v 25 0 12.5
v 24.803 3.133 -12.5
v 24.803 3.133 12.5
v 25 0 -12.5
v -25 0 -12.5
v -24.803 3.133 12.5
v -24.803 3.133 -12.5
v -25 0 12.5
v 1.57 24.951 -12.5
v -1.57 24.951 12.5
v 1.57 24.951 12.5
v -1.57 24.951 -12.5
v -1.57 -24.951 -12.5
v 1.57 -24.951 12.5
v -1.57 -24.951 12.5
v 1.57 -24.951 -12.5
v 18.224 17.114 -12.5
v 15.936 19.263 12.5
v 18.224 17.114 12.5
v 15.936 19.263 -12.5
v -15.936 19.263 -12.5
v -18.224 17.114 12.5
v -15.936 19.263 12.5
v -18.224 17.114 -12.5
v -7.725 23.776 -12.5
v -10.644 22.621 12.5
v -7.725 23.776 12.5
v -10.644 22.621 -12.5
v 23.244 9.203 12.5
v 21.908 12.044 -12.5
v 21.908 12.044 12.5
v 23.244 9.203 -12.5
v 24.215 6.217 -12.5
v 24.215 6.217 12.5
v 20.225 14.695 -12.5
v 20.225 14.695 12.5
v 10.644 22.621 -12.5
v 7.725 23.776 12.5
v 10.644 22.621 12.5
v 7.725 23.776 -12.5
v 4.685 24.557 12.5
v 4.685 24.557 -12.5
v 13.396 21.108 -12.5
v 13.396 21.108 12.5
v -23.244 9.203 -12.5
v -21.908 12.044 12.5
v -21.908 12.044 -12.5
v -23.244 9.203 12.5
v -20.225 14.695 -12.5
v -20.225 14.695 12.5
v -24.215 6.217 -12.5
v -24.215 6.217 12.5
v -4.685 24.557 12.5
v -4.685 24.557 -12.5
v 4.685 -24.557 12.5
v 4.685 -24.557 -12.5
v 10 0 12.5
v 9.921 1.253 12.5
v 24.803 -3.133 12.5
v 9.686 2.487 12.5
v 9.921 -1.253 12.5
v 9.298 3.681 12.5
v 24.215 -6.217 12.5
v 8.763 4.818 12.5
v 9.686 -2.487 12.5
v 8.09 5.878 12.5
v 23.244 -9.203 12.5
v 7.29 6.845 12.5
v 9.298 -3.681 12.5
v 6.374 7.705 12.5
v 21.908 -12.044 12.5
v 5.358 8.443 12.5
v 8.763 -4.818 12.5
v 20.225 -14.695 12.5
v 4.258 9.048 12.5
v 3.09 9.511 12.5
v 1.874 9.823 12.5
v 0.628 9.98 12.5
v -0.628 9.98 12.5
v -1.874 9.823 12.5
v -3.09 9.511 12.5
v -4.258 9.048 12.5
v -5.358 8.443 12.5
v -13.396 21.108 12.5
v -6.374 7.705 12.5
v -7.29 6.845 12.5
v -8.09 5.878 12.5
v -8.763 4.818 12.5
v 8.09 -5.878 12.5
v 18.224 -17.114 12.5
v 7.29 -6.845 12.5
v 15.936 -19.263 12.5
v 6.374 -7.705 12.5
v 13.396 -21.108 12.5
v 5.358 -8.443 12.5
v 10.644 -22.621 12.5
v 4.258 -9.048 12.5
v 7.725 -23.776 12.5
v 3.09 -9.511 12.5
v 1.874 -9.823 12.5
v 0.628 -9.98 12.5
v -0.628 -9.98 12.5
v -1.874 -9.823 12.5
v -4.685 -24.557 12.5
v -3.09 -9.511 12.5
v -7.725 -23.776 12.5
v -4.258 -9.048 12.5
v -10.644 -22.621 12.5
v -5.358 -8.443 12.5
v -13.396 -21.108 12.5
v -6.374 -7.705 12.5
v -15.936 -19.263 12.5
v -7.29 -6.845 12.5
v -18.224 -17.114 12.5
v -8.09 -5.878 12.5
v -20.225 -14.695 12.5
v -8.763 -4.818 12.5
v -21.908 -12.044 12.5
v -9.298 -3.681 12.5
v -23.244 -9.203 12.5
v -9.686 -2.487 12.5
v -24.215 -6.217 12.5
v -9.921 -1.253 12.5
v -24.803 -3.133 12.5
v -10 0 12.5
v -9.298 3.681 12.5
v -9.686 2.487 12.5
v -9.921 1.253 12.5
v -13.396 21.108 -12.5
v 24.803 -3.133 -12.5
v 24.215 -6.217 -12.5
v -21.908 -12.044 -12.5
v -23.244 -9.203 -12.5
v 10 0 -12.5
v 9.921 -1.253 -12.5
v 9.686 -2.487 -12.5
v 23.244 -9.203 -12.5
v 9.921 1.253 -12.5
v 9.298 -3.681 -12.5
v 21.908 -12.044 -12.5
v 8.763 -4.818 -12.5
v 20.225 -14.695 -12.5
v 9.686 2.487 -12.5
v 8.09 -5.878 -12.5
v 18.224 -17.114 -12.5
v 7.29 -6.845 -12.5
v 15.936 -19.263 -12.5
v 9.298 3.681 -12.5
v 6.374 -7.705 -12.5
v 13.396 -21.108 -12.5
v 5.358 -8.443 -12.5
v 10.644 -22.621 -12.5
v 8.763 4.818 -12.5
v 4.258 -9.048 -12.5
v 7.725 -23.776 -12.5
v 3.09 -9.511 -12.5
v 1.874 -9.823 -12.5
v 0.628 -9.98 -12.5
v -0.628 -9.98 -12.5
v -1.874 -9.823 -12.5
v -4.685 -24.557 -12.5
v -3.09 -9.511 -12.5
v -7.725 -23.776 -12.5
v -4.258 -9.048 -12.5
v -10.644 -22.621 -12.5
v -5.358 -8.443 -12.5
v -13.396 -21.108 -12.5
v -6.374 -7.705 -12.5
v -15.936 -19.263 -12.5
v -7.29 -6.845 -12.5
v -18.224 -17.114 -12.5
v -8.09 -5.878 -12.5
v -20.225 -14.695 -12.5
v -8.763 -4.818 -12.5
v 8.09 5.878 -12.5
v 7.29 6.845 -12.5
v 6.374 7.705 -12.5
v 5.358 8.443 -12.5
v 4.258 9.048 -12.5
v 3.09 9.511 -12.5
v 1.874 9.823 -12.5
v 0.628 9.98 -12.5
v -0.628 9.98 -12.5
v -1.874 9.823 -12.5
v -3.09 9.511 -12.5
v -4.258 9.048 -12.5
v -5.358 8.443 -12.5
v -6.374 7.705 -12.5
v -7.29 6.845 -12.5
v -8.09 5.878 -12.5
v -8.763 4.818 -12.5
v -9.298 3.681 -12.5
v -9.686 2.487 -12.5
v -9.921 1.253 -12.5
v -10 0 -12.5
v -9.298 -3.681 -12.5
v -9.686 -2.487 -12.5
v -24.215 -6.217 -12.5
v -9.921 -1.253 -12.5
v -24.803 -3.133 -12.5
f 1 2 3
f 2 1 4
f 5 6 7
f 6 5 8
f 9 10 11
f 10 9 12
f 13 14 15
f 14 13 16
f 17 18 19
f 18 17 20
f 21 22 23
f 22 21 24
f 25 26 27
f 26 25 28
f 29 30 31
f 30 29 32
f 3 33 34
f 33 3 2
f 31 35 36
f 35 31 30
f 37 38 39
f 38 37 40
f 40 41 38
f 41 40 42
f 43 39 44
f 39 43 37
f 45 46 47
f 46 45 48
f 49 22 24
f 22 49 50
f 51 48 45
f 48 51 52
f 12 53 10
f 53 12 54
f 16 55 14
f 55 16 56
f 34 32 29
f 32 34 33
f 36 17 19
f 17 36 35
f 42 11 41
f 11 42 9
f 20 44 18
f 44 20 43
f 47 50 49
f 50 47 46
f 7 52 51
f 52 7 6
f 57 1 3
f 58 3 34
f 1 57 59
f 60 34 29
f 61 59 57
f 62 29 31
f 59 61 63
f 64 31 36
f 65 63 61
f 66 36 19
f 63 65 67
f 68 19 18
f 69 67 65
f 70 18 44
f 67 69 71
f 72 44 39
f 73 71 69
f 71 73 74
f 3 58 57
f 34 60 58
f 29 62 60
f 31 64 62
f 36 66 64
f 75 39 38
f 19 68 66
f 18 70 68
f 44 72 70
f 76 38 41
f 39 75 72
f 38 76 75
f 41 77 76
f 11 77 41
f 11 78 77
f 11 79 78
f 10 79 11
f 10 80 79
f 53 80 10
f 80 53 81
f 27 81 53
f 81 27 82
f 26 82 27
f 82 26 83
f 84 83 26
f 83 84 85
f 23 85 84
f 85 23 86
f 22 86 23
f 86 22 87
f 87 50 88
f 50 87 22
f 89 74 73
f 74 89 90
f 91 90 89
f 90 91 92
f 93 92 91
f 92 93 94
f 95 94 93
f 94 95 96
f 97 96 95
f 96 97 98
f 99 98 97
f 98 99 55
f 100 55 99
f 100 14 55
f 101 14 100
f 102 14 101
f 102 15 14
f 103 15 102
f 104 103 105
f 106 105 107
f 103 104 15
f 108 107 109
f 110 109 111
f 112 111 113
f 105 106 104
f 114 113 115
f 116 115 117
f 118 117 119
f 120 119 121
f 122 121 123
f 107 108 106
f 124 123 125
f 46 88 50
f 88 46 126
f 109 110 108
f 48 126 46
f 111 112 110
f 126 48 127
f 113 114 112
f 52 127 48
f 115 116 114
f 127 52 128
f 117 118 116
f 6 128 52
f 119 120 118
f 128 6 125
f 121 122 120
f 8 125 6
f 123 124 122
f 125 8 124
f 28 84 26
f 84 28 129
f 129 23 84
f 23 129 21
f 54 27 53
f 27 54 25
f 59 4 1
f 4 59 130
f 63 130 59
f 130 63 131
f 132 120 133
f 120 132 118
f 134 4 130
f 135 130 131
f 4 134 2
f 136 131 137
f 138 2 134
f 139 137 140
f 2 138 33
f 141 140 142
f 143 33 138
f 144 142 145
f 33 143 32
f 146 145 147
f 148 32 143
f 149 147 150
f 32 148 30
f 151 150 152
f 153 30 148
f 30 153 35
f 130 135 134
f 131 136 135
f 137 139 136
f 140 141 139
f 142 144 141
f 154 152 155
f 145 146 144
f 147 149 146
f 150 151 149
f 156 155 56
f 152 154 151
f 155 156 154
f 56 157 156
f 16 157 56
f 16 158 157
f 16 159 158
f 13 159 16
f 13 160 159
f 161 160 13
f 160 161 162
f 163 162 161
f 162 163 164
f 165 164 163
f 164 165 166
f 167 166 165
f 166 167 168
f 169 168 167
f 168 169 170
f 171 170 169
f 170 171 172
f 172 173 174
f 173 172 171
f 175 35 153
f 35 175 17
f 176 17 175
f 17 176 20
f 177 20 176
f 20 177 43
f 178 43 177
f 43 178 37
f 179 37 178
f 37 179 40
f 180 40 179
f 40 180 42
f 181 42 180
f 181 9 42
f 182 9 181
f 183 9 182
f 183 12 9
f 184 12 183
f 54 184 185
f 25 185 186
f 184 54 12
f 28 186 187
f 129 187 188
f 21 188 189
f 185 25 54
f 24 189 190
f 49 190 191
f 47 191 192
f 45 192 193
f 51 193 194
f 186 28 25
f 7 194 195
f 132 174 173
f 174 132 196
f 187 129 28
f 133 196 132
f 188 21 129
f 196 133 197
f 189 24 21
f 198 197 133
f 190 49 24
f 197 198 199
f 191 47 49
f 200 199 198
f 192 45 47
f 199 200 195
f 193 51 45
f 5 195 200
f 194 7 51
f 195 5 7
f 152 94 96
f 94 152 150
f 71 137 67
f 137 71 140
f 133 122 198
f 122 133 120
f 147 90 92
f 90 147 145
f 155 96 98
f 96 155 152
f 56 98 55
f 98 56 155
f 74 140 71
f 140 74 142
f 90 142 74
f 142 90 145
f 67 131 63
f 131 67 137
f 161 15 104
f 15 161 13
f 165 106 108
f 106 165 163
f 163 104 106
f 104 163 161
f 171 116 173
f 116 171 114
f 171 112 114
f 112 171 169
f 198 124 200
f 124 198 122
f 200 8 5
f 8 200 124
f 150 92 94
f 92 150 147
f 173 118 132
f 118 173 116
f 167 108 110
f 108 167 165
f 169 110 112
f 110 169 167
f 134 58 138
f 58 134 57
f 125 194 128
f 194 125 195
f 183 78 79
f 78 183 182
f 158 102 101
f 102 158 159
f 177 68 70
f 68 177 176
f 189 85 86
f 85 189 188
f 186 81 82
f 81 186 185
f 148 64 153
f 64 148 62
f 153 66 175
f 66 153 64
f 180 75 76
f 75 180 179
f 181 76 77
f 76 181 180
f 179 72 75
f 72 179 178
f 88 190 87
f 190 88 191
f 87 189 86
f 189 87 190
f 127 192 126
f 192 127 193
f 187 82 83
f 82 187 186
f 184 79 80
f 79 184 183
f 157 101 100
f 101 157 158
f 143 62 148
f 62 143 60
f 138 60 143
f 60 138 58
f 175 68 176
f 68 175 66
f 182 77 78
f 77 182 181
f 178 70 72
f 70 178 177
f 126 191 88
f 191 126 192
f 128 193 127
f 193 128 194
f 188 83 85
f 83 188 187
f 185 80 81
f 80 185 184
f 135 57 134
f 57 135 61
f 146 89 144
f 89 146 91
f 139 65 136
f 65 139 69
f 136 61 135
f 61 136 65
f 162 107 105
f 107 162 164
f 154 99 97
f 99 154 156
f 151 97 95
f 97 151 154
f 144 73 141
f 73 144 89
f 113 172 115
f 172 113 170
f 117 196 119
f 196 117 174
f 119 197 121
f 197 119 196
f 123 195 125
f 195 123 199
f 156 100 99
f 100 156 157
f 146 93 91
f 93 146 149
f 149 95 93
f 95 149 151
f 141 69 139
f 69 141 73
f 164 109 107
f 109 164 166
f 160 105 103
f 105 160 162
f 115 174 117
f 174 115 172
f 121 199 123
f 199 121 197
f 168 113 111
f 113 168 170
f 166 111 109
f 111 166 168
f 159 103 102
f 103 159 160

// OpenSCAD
$fn = 50;


difference() {
	union() {
		translate(v = [0, 0, -12.5000000000]) {
			cylinder(h = 25, r = 25.0000000000);
		}
	}
	union() {
		translate(v = [0, 0, -100.0000000000]) {
			cylinder(h = 200, r = 10);
		}
	}
}
